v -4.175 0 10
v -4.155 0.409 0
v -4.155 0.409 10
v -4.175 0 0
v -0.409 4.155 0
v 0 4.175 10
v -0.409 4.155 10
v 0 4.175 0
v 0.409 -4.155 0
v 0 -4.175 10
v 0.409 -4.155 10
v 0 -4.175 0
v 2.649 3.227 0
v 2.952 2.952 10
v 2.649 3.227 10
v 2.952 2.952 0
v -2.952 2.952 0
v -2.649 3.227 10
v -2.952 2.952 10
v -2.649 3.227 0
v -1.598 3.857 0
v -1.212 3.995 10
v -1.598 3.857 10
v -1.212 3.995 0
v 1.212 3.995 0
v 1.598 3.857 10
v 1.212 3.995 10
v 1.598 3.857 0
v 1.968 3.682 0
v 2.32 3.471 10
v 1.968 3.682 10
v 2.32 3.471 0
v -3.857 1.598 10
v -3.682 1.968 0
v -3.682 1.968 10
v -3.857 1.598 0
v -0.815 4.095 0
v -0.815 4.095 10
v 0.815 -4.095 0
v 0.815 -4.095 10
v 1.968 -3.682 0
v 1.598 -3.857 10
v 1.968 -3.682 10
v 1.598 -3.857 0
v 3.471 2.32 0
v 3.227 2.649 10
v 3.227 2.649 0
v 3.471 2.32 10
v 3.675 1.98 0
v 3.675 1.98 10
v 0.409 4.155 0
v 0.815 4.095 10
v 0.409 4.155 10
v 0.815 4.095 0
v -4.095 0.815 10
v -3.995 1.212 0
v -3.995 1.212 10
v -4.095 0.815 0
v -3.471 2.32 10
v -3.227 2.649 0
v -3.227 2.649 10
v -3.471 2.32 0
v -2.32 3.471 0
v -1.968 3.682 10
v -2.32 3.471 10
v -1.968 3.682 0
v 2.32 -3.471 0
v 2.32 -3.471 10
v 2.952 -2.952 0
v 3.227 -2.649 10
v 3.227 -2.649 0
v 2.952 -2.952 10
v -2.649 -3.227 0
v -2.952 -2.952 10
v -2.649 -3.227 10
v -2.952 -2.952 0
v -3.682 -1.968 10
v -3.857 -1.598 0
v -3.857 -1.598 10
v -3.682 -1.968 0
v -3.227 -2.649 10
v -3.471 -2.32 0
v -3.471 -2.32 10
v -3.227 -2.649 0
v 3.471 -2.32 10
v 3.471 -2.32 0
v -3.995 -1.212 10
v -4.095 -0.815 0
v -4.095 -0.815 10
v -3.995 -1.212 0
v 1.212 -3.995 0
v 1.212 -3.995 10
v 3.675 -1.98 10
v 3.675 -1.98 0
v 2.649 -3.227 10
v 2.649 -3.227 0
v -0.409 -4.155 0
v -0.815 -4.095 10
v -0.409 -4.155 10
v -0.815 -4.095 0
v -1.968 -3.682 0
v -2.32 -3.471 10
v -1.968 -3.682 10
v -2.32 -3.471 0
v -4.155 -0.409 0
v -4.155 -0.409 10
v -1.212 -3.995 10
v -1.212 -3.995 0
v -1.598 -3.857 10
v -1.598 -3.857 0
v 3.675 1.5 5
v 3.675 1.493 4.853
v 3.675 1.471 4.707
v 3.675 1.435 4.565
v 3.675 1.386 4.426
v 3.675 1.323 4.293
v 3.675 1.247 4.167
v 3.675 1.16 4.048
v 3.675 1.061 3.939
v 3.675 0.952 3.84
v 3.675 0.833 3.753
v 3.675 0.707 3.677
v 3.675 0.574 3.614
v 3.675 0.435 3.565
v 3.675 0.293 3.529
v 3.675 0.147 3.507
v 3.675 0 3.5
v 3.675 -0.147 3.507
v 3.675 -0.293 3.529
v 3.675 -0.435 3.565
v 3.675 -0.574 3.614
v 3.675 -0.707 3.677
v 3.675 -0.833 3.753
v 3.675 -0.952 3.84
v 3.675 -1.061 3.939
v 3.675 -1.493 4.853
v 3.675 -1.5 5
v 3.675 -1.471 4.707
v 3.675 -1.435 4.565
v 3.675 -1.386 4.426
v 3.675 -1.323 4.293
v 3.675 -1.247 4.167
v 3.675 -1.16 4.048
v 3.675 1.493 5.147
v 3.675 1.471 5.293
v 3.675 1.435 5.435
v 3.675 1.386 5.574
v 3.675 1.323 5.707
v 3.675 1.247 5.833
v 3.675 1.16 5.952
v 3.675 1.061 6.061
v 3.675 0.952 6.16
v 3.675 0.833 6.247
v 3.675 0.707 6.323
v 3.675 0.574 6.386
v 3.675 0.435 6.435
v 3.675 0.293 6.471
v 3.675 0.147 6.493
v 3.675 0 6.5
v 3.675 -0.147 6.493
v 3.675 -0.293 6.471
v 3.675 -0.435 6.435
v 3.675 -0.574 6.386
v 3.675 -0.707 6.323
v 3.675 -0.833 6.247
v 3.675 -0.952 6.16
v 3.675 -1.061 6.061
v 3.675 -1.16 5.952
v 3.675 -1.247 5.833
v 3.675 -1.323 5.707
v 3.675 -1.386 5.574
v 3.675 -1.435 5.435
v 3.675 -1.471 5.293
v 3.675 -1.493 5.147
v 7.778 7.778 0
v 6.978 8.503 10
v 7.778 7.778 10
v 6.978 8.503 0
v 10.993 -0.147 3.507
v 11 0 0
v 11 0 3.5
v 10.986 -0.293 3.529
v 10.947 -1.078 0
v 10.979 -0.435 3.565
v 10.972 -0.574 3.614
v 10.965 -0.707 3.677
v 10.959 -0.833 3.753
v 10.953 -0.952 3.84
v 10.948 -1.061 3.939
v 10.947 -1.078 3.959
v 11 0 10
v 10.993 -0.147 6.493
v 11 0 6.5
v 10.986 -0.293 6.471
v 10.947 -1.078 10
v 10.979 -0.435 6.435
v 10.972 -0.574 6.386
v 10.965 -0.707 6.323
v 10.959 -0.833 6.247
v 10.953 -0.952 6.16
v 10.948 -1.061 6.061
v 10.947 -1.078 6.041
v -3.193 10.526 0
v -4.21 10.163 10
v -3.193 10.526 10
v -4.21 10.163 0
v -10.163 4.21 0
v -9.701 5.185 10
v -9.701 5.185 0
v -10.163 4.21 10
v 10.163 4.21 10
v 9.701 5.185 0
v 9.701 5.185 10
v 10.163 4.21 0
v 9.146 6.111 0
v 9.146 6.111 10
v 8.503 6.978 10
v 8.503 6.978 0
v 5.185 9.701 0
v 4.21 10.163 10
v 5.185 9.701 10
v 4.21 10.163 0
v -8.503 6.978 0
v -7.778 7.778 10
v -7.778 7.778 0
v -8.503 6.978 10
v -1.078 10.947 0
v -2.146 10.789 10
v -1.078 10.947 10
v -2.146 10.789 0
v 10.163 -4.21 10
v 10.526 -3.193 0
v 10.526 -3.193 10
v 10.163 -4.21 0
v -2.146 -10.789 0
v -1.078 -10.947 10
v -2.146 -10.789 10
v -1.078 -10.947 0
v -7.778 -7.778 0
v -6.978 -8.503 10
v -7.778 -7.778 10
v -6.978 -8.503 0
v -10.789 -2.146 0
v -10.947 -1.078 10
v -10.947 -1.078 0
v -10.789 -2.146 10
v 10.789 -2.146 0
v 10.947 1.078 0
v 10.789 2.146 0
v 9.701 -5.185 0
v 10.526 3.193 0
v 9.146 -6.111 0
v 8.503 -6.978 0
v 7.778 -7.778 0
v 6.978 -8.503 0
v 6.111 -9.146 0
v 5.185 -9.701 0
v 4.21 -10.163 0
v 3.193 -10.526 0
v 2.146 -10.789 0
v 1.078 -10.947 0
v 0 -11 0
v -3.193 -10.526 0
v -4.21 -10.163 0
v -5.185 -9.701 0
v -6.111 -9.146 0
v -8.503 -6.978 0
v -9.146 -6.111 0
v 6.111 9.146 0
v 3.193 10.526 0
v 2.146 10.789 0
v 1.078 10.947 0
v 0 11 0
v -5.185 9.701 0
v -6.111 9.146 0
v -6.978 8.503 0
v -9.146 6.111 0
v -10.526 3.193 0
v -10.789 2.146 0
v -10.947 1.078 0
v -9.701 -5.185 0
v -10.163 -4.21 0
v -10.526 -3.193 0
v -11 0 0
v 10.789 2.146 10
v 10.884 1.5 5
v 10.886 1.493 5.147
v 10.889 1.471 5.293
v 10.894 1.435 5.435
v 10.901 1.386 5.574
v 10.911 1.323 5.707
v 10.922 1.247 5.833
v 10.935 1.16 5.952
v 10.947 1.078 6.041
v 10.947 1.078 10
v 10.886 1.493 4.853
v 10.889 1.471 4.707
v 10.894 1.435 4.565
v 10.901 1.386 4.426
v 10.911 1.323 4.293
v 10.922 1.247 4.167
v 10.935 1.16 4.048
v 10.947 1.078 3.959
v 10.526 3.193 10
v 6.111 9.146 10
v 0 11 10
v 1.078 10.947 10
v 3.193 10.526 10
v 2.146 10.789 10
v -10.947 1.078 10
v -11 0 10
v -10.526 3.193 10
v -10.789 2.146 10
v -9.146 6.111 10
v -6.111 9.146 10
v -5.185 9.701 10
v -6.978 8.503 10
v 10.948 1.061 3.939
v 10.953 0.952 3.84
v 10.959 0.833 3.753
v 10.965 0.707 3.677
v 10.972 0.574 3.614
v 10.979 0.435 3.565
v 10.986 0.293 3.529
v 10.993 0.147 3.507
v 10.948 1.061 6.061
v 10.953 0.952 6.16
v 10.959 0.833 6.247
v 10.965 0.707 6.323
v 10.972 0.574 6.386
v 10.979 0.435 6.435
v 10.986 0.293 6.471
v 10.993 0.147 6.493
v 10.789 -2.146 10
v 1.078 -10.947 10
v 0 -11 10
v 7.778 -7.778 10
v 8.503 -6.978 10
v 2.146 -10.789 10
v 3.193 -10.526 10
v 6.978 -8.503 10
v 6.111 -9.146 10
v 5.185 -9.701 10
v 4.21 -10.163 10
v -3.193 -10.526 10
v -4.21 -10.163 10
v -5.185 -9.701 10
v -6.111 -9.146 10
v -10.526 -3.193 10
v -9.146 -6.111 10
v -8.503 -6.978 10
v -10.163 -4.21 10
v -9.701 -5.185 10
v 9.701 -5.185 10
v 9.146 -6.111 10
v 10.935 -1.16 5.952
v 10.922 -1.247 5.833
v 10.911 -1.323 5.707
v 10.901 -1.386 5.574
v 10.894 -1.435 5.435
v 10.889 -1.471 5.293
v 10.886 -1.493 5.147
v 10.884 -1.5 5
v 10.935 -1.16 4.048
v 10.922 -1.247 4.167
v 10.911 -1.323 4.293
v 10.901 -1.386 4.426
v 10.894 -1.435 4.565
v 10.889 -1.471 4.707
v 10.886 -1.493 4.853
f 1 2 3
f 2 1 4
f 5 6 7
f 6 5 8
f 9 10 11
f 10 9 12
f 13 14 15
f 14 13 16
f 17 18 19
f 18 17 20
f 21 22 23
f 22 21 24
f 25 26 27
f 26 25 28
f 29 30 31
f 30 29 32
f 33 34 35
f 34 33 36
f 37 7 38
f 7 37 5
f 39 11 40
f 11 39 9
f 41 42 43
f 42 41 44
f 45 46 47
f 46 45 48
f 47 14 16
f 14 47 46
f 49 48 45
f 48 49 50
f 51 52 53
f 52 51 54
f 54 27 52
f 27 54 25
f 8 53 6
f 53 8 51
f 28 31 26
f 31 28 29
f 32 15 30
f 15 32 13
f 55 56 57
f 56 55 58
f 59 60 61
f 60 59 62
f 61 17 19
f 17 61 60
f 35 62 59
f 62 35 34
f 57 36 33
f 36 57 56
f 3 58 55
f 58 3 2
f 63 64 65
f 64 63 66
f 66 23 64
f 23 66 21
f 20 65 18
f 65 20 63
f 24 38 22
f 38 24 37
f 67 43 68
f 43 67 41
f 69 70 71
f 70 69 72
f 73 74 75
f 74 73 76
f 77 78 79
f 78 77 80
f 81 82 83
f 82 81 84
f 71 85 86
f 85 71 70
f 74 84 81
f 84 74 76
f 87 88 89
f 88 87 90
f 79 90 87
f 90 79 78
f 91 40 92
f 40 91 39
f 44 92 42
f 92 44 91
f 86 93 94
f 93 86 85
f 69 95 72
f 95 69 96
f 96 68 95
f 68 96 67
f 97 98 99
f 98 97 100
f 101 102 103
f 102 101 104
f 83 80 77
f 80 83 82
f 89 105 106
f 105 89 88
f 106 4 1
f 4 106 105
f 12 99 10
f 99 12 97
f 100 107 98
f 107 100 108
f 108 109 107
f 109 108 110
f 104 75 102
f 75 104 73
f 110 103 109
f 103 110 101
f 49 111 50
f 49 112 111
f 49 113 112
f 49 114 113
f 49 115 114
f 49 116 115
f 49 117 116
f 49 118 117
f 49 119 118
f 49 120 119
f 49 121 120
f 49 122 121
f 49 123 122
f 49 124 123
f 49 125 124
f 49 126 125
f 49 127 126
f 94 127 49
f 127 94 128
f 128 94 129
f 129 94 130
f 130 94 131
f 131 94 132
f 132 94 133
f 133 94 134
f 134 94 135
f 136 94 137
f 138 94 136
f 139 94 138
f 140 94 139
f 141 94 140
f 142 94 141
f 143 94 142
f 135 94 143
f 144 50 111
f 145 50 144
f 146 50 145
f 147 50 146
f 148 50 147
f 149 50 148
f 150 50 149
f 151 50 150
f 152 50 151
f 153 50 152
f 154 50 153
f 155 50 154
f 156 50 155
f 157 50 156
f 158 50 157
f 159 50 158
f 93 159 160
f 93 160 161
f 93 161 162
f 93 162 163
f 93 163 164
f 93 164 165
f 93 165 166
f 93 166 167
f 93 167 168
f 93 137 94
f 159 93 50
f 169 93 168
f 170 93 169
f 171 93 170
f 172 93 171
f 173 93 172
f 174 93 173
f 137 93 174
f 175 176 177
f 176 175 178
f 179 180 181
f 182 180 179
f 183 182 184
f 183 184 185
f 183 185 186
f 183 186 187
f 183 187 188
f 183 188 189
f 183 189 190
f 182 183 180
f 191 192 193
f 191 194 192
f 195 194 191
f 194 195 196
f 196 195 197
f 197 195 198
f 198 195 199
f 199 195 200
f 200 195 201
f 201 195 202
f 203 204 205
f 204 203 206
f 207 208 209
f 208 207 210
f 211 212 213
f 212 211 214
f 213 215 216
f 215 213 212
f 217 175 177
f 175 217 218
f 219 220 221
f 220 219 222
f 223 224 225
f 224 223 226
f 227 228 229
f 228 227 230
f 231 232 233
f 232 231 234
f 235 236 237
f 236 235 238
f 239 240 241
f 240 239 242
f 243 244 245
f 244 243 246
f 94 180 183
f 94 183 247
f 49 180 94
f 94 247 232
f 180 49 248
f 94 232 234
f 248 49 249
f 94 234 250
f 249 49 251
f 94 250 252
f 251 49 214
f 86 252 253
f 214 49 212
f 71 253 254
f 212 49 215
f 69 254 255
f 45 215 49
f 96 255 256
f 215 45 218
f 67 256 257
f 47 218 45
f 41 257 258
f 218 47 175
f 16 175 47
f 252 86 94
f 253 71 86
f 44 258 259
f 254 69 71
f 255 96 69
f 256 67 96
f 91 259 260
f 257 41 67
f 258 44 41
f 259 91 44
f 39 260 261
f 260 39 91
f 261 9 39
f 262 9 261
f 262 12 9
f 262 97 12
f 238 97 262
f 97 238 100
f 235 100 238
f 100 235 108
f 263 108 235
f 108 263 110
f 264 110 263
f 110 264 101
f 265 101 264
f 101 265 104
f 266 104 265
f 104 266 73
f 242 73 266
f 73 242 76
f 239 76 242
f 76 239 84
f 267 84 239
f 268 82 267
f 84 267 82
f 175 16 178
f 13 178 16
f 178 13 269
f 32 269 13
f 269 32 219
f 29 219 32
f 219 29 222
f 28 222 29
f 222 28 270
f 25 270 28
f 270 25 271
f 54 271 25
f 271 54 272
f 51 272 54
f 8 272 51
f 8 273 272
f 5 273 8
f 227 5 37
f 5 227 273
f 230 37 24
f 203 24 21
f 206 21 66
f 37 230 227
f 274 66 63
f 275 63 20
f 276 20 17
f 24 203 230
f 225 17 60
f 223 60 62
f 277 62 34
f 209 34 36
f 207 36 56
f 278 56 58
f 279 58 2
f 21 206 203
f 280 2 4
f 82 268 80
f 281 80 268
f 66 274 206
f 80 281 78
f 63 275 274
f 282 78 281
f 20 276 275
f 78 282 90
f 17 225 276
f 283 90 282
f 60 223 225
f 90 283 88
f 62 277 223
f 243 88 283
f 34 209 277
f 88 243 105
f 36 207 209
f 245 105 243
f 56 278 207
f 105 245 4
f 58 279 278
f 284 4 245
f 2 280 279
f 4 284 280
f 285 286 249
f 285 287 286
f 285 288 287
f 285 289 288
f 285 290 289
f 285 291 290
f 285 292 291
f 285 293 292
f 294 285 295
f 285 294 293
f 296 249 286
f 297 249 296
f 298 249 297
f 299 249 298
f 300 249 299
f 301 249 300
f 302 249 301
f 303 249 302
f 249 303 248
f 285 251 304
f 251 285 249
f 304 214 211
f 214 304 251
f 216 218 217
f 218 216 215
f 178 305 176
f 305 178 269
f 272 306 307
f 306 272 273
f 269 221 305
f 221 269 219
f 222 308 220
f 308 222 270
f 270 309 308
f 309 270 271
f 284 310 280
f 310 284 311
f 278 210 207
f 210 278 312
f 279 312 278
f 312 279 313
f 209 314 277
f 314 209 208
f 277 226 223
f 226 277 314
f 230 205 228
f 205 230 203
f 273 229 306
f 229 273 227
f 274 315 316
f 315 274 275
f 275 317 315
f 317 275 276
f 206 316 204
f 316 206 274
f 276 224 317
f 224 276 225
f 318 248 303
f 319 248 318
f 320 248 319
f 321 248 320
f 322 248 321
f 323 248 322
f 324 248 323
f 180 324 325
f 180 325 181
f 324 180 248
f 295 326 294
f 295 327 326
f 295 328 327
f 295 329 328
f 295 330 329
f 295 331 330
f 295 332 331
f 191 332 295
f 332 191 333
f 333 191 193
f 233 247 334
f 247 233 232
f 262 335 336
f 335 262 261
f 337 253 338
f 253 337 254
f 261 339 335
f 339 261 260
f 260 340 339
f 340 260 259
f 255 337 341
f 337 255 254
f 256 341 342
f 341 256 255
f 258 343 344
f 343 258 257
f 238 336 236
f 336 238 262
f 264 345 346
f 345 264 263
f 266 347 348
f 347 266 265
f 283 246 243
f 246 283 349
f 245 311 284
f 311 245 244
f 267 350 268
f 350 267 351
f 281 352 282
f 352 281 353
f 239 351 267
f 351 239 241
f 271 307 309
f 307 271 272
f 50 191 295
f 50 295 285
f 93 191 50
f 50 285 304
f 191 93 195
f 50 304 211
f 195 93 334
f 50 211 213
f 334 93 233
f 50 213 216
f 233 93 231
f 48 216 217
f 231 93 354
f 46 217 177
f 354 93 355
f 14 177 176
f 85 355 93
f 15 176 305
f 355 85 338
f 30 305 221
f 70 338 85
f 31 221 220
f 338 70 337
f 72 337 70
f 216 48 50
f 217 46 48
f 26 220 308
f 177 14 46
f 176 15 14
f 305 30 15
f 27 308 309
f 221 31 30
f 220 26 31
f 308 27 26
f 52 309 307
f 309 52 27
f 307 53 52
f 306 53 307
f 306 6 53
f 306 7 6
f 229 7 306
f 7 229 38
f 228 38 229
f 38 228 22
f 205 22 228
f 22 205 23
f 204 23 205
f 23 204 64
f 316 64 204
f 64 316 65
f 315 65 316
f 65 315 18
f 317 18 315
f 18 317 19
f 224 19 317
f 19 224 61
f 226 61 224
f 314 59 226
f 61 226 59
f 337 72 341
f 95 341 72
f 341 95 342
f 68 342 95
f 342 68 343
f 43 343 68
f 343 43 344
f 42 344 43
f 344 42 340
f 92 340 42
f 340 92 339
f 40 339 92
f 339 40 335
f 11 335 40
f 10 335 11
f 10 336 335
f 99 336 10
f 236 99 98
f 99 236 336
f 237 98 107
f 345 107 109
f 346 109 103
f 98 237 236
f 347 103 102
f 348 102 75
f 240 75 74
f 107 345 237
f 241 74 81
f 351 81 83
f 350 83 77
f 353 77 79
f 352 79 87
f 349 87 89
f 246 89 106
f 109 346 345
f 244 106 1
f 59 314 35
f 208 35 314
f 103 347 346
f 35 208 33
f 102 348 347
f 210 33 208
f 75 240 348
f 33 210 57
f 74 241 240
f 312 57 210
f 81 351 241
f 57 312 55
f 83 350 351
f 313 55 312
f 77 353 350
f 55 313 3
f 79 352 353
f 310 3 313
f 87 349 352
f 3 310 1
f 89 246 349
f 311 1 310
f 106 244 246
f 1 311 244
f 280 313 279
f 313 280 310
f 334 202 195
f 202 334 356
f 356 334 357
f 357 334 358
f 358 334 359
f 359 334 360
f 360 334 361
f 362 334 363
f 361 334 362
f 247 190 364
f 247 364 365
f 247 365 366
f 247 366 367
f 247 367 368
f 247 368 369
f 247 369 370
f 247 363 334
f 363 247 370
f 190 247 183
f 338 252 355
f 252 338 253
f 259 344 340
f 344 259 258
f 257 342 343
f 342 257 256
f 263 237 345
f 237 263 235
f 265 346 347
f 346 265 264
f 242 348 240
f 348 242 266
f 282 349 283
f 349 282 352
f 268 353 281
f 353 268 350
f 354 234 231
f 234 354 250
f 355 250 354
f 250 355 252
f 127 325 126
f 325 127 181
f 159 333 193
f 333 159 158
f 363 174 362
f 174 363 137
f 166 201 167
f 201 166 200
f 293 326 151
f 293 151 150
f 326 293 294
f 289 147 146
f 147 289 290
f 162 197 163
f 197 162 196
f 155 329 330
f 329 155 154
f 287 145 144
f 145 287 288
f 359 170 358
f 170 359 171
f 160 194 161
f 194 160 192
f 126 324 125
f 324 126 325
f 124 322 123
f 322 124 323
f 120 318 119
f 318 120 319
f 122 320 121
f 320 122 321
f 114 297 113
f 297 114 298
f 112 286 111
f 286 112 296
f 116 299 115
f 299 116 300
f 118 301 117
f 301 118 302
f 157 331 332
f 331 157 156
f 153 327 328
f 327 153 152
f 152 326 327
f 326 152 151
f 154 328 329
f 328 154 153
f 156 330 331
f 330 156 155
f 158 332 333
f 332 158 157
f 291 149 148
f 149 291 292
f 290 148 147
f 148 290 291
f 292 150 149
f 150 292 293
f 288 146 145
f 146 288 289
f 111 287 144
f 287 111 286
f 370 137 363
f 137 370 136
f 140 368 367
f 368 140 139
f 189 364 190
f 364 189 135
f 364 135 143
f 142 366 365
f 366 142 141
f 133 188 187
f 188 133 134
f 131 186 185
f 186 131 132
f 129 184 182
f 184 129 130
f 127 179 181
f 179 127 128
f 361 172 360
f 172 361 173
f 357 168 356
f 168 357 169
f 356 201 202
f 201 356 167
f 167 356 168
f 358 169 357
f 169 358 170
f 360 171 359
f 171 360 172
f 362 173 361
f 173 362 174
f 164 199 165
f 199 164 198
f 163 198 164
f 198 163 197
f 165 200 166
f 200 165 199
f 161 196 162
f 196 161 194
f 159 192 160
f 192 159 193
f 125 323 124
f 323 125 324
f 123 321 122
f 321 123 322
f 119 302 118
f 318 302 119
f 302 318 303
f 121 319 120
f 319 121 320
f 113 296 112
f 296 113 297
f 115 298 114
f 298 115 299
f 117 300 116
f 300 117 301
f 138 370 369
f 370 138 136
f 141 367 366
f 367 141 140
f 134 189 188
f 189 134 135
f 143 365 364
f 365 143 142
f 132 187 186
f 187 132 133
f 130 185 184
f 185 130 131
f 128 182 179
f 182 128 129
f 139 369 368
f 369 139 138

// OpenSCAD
// Gen-DW — shaft collar with D-flat bore (set screw bears on the flat); print x4
include <parameters.scad>;
$fn = 64;
// D-flat keyed bore: flat faces +X (angle 0 = magnet pocket 0 = index notch)
module dflat_bore(h) {
    intersection() {
        cylinder(d=shaft_bore, h=h);
        translate([-shaft_bore, -shaft_bore, 0]) cube([shaft_bore + dflat_x, 2*shaft_bore, h]);
    }
}

od = 22; h = collar_h; set_d = 3.0;
difference() {
    cylinder(d=od, h=h);
    translate([0, 0, -0.1]) dflat_bore(h + 0.2);
    translate([0, 0, h/2]) rotate([0, 90, 0]) cylinder(d=set_d, h=od);
}
